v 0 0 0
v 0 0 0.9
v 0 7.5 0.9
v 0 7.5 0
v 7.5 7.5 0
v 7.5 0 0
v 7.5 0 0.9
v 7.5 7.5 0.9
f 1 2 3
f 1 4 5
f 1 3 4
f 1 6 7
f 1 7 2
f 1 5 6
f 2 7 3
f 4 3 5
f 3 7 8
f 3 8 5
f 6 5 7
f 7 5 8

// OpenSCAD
/* Warning, this is a very basic generator with a lot of approximation 
input data : [VQFN, SHB, 7.5x7.5x0.9mm, 64, , A, C04-21410A]
generated by com.zoubworld.electronics.cad.model3d.Basic
Date : Sun Feb 15 10:50:49 CET 2026
*/

//body
color("black")
translate([0,0,0])
cube([7.5,7.5,0.9], center=false);
